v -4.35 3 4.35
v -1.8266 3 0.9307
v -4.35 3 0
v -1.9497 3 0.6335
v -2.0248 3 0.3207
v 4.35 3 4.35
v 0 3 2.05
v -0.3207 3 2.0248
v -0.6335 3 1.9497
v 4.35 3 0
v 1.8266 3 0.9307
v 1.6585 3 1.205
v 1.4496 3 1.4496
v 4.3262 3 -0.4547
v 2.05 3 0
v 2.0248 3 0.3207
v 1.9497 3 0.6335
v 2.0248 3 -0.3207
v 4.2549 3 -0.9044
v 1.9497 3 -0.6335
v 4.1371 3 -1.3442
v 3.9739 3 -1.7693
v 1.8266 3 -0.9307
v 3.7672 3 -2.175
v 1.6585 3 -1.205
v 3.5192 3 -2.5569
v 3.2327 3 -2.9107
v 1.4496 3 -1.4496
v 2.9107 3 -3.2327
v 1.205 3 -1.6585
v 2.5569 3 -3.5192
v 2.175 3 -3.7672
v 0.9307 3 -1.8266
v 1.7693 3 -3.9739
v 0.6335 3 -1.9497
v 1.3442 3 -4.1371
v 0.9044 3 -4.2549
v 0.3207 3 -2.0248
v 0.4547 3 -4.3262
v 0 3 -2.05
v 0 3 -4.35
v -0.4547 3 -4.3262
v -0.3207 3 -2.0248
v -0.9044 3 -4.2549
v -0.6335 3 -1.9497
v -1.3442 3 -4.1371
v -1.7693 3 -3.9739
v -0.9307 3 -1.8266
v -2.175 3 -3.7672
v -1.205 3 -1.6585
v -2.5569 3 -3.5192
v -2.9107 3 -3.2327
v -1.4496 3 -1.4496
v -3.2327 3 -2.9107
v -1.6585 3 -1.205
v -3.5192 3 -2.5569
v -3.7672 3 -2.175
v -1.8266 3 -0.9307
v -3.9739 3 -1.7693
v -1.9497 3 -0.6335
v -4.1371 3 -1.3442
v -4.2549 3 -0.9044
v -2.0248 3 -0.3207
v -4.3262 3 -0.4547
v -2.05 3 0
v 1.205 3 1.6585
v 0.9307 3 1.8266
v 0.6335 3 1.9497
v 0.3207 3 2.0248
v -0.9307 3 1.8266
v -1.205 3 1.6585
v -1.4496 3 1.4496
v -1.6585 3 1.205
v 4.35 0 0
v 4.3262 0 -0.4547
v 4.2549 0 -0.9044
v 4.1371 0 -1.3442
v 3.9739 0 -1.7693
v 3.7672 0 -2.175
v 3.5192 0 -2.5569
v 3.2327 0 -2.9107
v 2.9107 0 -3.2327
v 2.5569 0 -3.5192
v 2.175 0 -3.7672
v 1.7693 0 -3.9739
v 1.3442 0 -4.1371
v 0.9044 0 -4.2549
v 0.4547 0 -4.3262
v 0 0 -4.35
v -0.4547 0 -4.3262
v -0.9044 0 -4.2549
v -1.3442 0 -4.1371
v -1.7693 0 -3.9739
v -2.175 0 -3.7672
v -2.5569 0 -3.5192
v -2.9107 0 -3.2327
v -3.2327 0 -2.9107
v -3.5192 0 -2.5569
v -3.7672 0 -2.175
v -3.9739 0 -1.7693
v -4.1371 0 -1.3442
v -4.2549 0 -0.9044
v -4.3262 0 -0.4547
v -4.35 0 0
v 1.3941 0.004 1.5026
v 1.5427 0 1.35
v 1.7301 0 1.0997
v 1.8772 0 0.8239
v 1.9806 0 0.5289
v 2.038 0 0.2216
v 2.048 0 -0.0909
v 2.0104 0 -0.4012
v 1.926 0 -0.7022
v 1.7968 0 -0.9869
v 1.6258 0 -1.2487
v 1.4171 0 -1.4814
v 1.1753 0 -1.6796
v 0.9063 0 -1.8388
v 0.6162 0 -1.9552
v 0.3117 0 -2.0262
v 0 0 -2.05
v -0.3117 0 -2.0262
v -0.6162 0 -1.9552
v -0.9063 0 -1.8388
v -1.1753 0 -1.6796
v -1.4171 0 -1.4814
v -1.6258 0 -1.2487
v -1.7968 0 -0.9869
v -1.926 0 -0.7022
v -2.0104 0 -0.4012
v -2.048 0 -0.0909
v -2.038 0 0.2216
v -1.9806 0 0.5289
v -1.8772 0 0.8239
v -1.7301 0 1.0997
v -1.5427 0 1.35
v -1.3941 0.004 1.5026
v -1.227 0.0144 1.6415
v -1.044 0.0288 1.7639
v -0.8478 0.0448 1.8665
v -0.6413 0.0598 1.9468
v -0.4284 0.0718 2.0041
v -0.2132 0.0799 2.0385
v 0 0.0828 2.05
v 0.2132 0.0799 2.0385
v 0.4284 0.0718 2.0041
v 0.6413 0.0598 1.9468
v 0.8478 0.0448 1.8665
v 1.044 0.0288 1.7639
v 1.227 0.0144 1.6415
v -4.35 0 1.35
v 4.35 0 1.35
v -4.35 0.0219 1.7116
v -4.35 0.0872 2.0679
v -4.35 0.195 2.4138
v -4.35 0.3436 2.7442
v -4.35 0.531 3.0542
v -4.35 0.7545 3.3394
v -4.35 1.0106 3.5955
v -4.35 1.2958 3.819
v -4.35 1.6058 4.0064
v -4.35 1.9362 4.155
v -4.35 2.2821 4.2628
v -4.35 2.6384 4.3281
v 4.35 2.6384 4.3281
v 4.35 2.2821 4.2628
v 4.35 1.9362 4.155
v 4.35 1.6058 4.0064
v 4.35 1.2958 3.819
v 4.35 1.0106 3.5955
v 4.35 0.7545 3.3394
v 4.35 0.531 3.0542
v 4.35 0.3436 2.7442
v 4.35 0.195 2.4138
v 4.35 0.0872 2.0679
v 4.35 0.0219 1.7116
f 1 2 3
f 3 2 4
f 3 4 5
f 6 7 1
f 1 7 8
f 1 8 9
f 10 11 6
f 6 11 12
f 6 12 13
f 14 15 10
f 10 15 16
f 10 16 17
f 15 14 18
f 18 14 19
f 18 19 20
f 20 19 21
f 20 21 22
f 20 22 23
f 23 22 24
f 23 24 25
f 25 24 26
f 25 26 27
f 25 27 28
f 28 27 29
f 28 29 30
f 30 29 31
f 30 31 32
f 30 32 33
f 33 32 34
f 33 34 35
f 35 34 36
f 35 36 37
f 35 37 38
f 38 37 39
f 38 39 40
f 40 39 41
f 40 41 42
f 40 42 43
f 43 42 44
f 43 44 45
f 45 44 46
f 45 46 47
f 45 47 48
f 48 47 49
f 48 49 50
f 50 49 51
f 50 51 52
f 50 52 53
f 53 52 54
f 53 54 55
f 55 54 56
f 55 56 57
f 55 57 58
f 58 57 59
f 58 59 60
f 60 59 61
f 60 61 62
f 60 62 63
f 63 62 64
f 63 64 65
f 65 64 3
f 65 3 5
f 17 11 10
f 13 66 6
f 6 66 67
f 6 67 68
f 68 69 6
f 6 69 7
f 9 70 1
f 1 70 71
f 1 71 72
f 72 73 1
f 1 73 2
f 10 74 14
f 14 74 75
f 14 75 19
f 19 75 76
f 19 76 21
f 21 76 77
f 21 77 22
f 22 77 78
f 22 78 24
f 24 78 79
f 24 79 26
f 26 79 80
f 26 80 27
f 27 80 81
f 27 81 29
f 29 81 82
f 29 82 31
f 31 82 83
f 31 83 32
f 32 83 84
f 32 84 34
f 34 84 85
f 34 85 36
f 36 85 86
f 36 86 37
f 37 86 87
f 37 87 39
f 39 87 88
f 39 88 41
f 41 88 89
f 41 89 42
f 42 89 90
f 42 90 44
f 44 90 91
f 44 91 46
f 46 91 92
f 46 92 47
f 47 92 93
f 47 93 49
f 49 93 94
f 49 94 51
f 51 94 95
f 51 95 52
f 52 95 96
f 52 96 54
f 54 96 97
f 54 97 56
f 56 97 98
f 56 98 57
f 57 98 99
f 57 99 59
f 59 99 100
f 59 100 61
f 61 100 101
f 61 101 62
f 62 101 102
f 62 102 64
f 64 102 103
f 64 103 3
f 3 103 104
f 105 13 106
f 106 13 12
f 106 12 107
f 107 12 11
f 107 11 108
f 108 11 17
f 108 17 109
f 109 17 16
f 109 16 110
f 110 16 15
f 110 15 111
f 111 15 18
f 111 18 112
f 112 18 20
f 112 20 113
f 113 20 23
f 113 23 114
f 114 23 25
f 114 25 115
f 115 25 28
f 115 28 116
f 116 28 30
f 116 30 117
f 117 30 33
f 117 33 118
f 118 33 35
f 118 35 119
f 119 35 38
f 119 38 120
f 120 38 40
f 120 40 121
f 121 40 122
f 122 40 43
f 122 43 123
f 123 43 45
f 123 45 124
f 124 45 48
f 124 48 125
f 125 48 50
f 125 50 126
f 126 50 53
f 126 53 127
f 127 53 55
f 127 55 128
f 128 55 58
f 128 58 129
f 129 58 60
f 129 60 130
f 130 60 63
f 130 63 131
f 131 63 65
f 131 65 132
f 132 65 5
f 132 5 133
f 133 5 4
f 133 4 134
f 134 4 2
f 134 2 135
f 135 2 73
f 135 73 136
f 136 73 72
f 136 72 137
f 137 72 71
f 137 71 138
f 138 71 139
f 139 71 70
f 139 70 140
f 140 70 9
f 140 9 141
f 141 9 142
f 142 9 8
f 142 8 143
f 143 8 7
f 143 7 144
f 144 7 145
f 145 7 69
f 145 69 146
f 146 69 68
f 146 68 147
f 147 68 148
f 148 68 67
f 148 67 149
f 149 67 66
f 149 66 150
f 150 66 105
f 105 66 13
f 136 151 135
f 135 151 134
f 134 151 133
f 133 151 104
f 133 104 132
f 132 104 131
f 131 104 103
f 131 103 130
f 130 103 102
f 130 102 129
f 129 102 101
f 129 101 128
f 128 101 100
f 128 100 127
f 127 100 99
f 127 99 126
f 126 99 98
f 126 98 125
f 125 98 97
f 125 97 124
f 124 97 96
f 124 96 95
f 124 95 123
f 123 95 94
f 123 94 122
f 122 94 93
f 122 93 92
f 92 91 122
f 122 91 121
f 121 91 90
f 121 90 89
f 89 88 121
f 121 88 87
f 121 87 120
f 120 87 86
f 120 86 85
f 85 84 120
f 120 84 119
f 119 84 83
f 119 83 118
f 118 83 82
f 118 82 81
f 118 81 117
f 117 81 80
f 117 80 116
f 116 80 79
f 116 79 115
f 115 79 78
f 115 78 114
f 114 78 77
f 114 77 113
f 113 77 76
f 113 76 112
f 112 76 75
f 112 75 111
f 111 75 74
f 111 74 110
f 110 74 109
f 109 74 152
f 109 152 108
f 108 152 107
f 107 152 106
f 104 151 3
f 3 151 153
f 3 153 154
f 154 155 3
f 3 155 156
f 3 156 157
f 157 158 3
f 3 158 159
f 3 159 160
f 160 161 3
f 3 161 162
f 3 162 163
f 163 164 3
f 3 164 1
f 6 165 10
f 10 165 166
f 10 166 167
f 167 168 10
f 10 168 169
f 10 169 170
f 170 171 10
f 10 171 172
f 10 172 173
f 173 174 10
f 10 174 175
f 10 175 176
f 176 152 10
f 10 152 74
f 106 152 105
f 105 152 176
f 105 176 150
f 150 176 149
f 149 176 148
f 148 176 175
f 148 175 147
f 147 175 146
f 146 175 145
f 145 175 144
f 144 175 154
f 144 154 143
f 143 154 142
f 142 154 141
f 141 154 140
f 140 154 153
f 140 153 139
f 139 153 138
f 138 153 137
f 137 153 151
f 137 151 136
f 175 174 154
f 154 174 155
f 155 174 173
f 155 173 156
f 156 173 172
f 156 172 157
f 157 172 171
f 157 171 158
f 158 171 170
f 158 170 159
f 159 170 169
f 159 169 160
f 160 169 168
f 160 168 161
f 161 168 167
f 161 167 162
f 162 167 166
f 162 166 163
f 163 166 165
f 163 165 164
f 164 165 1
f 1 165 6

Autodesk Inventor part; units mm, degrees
ref_plane "YZ Plane" through (0, 0, 0) normal (1, 0, 0) x (0, 1, 0)
ref_plane "XZ Plane" through (0, 0, 0) normal (0, 1, 0) x (-1, 0, 0)
ref_plane "XY Plane" through (0, 0, 0) normal (0, 0, 1) x (1, 0, 0)
sketch "Sketch1" plane through (0, 0, 0) normal (0, 1, 0) x (-1, 0, 0)
  circle A0 centre (0, 0) radius 2.05
  arc A1 (0, 4.35) -> (-4.35, 0) centre (0, 0) ccw construction
  line L0 (0, 4.35) -> (4.35, 4.35)
  line L1 (4.35, 0) -> (4.35, 4.35)
  line L2 (0, 4.35) -> (-4.35, 4.35)
  line L3 (-4.35, 0) -> (-4.35, 4.35)
  arc A2 (4.35, 0) -> (0, 4.35) centre (0, 0) ccw construction
  arc A3 (-4.35, 0) -> (4.35, 0) centre (0, 0) ccw
  dimension "d0" = 4.1
  dimension "d1" = 2.3
extrude "Extrusion1" add sketch "Sketch1" along normal blind 3
fillet "Fillet1" radius 3 1 edges at (-2.175, 0, 4.35)
properties part number "top_housing_screw_spacers"
